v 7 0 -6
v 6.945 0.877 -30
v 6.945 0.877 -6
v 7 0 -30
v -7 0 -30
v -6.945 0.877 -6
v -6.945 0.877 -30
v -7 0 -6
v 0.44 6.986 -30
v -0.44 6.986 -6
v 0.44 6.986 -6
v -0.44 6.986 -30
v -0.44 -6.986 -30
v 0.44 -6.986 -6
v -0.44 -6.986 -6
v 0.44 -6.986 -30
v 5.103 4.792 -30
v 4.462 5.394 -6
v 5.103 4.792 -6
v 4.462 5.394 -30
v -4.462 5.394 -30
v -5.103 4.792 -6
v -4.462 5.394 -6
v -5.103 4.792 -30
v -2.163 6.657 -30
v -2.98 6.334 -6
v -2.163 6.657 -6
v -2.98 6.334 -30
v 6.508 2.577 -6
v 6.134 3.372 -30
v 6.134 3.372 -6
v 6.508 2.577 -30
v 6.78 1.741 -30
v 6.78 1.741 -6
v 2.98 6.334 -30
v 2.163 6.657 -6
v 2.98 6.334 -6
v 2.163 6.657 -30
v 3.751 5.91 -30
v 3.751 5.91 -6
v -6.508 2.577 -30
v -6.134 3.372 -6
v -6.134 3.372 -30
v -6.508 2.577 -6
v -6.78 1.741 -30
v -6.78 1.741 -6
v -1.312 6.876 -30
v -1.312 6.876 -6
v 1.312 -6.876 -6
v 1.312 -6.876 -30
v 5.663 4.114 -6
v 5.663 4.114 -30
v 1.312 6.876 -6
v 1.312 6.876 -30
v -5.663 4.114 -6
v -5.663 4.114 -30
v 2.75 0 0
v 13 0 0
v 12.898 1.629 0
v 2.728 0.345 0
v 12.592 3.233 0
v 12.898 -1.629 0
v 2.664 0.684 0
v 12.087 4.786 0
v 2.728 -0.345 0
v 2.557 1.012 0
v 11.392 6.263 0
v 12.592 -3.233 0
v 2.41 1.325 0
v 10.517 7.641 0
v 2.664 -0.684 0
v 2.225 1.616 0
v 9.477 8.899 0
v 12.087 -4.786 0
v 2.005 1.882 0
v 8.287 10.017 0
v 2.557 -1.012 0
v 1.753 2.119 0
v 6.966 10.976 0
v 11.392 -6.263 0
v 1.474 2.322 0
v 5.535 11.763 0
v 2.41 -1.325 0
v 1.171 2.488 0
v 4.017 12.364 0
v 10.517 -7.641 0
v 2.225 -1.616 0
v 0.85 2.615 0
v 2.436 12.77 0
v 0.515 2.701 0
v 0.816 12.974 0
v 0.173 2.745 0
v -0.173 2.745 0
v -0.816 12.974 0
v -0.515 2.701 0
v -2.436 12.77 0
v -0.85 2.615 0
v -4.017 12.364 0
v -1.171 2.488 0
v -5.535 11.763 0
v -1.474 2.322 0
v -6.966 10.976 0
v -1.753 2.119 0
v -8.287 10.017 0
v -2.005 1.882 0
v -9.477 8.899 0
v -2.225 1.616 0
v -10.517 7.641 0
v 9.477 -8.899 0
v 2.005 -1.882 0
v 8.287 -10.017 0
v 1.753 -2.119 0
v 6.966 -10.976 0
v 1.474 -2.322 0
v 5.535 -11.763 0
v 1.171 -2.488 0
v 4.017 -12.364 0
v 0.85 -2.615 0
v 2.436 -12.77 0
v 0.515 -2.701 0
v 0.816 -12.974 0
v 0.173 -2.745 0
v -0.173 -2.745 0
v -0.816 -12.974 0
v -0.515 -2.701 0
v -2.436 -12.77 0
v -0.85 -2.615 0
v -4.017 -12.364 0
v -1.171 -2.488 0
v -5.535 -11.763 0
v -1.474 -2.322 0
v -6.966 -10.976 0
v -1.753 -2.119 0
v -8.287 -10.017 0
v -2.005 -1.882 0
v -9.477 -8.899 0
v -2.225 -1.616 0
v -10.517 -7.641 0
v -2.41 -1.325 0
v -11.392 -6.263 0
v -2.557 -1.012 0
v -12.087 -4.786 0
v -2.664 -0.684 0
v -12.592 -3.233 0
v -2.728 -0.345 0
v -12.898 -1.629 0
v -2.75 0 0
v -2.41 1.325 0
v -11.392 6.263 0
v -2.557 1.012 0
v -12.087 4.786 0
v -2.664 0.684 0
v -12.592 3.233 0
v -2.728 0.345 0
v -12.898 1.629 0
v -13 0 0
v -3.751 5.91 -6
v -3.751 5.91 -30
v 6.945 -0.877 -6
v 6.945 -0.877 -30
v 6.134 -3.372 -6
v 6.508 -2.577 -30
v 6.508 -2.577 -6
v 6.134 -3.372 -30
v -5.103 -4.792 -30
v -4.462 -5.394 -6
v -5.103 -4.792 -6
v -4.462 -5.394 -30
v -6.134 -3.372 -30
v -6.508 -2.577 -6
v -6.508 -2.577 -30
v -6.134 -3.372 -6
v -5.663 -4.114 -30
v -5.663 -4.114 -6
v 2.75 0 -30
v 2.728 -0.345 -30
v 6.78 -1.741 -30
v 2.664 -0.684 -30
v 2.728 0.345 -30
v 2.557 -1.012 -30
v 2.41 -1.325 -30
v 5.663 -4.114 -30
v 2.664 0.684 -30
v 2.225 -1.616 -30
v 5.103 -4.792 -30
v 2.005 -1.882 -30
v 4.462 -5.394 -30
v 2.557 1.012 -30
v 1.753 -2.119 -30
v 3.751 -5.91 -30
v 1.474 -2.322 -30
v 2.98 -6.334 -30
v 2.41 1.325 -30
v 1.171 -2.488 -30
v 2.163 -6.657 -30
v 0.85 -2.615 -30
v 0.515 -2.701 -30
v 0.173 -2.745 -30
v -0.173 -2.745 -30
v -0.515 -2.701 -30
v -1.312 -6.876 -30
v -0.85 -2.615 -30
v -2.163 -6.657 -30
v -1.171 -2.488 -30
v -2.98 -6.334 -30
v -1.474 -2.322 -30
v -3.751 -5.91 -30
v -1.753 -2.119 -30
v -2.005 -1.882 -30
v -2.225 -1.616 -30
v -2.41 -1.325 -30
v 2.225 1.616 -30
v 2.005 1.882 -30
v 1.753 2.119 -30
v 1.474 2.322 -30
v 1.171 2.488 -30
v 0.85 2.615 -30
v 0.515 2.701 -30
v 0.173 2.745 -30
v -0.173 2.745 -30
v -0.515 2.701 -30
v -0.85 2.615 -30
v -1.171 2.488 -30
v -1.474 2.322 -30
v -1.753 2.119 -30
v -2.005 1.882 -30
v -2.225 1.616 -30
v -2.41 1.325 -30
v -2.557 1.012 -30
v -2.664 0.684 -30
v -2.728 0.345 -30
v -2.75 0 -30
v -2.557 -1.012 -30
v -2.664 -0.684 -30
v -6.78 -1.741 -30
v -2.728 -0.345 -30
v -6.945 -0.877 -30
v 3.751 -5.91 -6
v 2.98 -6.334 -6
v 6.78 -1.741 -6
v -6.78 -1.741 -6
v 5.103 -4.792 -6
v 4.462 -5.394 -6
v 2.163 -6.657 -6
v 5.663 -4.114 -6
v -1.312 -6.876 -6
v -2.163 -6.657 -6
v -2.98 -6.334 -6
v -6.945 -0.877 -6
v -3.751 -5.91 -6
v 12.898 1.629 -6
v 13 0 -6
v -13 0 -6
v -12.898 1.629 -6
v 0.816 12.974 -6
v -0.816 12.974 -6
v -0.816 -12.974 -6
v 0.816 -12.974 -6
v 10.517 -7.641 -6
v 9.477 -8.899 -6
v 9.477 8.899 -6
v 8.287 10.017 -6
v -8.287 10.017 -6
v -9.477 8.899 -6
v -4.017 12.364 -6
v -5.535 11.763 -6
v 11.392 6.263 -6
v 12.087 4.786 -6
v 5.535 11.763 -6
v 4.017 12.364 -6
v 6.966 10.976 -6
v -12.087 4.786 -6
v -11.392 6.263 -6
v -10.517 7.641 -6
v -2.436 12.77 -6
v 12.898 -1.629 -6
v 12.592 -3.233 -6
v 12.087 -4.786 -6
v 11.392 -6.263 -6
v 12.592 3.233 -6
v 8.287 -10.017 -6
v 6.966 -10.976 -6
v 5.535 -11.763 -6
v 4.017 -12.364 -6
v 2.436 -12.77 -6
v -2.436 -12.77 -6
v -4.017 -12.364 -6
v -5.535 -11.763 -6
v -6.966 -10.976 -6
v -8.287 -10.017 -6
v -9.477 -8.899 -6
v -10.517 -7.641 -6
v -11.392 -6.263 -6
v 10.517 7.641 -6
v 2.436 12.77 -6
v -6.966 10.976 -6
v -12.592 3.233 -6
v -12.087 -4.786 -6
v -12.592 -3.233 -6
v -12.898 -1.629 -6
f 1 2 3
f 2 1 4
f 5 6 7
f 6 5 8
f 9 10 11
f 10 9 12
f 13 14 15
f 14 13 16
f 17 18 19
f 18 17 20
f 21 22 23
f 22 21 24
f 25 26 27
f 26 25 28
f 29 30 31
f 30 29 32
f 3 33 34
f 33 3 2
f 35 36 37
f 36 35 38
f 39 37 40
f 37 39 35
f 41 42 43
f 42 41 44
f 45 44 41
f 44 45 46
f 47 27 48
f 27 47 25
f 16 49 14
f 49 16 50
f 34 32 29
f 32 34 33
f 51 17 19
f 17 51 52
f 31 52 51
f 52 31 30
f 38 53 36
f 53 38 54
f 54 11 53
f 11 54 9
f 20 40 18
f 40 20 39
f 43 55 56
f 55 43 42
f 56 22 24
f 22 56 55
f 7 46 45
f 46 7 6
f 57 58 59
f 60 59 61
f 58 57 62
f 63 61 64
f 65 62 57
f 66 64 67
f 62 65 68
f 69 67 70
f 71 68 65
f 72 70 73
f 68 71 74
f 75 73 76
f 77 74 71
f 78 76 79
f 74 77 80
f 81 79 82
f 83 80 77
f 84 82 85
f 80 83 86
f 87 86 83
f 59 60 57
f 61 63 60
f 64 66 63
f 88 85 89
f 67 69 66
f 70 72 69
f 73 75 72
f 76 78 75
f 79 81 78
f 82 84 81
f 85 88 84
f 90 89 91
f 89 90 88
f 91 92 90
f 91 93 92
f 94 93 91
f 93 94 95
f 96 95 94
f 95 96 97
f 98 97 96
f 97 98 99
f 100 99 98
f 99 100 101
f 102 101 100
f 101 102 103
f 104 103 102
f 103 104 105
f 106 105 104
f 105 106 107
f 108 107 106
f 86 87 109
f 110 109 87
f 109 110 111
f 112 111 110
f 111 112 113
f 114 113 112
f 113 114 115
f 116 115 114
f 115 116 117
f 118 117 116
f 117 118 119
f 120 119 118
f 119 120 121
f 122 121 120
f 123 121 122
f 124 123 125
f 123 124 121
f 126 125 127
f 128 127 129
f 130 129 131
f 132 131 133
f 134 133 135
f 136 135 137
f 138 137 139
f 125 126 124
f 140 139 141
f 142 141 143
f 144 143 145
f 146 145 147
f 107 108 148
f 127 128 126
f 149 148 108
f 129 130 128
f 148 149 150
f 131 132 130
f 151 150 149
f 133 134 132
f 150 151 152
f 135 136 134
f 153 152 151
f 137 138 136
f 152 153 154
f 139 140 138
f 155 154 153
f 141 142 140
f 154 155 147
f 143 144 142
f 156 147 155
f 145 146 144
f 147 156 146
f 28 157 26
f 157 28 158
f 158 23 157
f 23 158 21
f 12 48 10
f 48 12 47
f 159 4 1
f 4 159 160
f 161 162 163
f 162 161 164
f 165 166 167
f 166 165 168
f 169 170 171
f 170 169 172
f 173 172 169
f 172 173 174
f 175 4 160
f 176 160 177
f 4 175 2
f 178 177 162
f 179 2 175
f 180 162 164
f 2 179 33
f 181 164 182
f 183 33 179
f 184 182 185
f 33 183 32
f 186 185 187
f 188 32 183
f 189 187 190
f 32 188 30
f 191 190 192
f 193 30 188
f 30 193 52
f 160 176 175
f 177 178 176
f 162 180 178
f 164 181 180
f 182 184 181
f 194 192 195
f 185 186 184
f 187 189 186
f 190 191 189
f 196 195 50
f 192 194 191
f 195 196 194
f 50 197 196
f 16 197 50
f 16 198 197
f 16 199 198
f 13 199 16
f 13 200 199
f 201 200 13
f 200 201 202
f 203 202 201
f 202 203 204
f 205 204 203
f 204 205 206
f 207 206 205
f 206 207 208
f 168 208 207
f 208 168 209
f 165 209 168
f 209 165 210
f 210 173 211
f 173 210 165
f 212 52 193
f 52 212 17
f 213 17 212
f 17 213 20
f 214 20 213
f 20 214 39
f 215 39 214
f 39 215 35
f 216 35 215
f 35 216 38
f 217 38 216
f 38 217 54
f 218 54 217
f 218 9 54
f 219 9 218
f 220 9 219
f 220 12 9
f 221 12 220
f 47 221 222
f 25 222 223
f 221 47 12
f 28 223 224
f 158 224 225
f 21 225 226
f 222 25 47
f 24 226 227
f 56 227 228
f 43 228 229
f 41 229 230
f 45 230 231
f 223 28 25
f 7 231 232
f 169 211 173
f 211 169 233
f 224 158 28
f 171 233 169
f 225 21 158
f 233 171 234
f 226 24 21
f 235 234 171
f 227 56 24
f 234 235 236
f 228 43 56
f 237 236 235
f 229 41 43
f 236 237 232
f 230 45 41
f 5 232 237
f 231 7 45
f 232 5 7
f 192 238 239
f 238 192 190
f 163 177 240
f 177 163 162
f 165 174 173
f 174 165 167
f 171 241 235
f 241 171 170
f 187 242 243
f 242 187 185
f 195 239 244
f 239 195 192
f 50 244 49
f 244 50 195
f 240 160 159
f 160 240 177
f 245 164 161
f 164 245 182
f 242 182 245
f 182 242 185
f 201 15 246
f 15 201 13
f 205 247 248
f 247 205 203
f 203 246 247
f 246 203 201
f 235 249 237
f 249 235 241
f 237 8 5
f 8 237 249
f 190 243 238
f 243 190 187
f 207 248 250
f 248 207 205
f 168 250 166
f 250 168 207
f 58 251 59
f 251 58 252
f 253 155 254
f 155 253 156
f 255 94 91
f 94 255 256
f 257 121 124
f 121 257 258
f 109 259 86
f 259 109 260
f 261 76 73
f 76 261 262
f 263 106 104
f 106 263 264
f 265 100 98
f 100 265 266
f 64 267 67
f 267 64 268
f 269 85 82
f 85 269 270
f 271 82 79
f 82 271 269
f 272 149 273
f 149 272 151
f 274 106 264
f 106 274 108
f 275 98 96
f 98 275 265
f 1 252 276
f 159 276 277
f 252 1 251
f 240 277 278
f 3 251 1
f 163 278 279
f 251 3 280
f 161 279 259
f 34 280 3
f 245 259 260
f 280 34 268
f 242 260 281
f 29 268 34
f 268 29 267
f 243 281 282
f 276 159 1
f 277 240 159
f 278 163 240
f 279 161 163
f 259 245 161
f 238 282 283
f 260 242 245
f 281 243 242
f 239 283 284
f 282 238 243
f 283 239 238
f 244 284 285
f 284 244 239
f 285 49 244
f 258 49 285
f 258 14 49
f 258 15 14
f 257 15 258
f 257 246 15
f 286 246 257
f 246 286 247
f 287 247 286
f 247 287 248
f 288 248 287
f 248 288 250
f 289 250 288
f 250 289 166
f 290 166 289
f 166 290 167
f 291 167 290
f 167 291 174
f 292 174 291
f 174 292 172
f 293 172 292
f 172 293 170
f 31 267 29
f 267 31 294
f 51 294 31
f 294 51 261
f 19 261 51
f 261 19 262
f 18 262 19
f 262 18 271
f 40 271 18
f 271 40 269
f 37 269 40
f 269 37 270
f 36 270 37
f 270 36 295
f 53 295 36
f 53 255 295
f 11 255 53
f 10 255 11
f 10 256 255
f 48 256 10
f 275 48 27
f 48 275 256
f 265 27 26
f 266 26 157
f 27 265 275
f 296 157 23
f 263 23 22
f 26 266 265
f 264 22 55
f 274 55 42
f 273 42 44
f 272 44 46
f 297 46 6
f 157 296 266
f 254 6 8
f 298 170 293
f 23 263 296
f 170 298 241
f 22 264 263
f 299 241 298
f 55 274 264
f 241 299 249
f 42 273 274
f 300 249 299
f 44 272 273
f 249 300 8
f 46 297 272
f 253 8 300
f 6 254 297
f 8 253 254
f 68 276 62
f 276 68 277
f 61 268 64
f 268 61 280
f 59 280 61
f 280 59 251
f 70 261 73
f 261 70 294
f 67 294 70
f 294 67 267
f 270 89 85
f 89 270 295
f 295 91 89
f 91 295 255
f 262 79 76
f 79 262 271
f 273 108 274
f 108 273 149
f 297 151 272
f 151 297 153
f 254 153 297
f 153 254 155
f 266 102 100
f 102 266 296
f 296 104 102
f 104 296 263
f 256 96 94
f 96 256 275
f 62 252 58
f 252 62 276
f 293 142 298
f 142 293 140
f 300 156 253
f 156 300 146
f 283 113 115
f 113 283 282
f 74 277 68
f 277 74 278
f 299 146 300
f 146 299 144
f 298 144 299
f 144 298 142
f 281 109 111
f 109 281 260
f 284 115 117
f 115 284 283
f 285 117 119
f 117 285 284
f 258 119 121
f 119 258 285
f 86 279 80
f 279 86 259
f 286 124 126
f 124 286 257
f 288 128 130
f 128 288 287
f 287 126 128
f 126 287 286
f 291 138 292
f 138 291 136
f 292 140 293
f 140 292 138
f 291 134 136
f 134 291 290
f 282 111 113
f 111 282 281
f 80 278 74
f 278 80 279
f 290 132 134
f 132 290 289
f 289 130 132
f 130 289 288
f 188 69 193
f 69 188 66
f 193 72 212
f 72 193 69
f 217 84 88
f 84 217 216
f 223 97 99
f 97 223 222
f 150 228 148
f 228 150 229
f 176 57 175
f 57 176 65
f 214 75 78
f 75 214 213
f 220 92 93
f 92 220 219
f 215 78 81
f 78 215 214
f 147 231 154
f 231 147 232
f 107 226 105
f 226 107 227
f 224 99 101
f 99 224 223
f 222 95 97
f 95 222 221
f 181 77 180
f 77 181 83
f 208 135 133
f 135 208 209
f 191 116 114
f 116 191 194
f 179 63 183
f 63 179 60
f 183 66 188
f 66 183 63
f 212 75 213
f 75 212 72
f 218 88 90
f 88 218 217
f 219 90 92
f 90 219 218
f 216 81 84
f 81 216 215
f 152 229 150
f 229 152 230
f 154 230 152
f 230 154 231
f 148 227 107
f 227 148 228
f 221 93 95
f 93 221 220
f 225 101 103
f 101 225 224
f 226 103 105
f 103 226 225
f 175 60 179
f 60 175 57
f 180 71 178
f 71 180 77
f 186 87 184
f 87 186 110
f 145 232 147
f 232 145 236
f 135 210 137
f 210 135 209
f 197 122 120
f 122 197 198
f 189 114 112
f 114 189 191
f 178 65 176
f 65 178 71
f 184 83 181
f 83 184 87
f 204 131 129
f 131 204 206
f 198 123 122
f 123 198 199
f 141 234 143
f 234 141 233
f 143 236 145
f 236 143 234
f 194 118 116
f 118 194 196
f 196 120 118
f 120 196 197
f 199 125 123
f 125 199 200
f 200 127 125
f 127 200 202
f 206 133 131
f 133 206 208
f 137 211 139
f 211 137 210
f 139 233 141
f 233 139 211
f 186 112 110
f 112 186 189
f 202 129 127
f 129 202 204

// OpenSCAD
$fn = 50;


difference() {
	union() {
		translate(v = [0, 0, -30.0000000000]) {
			cylinder(h = 30, r = 7.0000000000);
		}
		translate(v = [0, 0, -6.0000000000]) {
			cylinder(h = 6, r = 13.0000000000);
		}
	}
	union() {
		#translate(v = [0, 0, -30]) {
			cylinder(h = 30, r = 2.7500000000);
		}
	}
}
